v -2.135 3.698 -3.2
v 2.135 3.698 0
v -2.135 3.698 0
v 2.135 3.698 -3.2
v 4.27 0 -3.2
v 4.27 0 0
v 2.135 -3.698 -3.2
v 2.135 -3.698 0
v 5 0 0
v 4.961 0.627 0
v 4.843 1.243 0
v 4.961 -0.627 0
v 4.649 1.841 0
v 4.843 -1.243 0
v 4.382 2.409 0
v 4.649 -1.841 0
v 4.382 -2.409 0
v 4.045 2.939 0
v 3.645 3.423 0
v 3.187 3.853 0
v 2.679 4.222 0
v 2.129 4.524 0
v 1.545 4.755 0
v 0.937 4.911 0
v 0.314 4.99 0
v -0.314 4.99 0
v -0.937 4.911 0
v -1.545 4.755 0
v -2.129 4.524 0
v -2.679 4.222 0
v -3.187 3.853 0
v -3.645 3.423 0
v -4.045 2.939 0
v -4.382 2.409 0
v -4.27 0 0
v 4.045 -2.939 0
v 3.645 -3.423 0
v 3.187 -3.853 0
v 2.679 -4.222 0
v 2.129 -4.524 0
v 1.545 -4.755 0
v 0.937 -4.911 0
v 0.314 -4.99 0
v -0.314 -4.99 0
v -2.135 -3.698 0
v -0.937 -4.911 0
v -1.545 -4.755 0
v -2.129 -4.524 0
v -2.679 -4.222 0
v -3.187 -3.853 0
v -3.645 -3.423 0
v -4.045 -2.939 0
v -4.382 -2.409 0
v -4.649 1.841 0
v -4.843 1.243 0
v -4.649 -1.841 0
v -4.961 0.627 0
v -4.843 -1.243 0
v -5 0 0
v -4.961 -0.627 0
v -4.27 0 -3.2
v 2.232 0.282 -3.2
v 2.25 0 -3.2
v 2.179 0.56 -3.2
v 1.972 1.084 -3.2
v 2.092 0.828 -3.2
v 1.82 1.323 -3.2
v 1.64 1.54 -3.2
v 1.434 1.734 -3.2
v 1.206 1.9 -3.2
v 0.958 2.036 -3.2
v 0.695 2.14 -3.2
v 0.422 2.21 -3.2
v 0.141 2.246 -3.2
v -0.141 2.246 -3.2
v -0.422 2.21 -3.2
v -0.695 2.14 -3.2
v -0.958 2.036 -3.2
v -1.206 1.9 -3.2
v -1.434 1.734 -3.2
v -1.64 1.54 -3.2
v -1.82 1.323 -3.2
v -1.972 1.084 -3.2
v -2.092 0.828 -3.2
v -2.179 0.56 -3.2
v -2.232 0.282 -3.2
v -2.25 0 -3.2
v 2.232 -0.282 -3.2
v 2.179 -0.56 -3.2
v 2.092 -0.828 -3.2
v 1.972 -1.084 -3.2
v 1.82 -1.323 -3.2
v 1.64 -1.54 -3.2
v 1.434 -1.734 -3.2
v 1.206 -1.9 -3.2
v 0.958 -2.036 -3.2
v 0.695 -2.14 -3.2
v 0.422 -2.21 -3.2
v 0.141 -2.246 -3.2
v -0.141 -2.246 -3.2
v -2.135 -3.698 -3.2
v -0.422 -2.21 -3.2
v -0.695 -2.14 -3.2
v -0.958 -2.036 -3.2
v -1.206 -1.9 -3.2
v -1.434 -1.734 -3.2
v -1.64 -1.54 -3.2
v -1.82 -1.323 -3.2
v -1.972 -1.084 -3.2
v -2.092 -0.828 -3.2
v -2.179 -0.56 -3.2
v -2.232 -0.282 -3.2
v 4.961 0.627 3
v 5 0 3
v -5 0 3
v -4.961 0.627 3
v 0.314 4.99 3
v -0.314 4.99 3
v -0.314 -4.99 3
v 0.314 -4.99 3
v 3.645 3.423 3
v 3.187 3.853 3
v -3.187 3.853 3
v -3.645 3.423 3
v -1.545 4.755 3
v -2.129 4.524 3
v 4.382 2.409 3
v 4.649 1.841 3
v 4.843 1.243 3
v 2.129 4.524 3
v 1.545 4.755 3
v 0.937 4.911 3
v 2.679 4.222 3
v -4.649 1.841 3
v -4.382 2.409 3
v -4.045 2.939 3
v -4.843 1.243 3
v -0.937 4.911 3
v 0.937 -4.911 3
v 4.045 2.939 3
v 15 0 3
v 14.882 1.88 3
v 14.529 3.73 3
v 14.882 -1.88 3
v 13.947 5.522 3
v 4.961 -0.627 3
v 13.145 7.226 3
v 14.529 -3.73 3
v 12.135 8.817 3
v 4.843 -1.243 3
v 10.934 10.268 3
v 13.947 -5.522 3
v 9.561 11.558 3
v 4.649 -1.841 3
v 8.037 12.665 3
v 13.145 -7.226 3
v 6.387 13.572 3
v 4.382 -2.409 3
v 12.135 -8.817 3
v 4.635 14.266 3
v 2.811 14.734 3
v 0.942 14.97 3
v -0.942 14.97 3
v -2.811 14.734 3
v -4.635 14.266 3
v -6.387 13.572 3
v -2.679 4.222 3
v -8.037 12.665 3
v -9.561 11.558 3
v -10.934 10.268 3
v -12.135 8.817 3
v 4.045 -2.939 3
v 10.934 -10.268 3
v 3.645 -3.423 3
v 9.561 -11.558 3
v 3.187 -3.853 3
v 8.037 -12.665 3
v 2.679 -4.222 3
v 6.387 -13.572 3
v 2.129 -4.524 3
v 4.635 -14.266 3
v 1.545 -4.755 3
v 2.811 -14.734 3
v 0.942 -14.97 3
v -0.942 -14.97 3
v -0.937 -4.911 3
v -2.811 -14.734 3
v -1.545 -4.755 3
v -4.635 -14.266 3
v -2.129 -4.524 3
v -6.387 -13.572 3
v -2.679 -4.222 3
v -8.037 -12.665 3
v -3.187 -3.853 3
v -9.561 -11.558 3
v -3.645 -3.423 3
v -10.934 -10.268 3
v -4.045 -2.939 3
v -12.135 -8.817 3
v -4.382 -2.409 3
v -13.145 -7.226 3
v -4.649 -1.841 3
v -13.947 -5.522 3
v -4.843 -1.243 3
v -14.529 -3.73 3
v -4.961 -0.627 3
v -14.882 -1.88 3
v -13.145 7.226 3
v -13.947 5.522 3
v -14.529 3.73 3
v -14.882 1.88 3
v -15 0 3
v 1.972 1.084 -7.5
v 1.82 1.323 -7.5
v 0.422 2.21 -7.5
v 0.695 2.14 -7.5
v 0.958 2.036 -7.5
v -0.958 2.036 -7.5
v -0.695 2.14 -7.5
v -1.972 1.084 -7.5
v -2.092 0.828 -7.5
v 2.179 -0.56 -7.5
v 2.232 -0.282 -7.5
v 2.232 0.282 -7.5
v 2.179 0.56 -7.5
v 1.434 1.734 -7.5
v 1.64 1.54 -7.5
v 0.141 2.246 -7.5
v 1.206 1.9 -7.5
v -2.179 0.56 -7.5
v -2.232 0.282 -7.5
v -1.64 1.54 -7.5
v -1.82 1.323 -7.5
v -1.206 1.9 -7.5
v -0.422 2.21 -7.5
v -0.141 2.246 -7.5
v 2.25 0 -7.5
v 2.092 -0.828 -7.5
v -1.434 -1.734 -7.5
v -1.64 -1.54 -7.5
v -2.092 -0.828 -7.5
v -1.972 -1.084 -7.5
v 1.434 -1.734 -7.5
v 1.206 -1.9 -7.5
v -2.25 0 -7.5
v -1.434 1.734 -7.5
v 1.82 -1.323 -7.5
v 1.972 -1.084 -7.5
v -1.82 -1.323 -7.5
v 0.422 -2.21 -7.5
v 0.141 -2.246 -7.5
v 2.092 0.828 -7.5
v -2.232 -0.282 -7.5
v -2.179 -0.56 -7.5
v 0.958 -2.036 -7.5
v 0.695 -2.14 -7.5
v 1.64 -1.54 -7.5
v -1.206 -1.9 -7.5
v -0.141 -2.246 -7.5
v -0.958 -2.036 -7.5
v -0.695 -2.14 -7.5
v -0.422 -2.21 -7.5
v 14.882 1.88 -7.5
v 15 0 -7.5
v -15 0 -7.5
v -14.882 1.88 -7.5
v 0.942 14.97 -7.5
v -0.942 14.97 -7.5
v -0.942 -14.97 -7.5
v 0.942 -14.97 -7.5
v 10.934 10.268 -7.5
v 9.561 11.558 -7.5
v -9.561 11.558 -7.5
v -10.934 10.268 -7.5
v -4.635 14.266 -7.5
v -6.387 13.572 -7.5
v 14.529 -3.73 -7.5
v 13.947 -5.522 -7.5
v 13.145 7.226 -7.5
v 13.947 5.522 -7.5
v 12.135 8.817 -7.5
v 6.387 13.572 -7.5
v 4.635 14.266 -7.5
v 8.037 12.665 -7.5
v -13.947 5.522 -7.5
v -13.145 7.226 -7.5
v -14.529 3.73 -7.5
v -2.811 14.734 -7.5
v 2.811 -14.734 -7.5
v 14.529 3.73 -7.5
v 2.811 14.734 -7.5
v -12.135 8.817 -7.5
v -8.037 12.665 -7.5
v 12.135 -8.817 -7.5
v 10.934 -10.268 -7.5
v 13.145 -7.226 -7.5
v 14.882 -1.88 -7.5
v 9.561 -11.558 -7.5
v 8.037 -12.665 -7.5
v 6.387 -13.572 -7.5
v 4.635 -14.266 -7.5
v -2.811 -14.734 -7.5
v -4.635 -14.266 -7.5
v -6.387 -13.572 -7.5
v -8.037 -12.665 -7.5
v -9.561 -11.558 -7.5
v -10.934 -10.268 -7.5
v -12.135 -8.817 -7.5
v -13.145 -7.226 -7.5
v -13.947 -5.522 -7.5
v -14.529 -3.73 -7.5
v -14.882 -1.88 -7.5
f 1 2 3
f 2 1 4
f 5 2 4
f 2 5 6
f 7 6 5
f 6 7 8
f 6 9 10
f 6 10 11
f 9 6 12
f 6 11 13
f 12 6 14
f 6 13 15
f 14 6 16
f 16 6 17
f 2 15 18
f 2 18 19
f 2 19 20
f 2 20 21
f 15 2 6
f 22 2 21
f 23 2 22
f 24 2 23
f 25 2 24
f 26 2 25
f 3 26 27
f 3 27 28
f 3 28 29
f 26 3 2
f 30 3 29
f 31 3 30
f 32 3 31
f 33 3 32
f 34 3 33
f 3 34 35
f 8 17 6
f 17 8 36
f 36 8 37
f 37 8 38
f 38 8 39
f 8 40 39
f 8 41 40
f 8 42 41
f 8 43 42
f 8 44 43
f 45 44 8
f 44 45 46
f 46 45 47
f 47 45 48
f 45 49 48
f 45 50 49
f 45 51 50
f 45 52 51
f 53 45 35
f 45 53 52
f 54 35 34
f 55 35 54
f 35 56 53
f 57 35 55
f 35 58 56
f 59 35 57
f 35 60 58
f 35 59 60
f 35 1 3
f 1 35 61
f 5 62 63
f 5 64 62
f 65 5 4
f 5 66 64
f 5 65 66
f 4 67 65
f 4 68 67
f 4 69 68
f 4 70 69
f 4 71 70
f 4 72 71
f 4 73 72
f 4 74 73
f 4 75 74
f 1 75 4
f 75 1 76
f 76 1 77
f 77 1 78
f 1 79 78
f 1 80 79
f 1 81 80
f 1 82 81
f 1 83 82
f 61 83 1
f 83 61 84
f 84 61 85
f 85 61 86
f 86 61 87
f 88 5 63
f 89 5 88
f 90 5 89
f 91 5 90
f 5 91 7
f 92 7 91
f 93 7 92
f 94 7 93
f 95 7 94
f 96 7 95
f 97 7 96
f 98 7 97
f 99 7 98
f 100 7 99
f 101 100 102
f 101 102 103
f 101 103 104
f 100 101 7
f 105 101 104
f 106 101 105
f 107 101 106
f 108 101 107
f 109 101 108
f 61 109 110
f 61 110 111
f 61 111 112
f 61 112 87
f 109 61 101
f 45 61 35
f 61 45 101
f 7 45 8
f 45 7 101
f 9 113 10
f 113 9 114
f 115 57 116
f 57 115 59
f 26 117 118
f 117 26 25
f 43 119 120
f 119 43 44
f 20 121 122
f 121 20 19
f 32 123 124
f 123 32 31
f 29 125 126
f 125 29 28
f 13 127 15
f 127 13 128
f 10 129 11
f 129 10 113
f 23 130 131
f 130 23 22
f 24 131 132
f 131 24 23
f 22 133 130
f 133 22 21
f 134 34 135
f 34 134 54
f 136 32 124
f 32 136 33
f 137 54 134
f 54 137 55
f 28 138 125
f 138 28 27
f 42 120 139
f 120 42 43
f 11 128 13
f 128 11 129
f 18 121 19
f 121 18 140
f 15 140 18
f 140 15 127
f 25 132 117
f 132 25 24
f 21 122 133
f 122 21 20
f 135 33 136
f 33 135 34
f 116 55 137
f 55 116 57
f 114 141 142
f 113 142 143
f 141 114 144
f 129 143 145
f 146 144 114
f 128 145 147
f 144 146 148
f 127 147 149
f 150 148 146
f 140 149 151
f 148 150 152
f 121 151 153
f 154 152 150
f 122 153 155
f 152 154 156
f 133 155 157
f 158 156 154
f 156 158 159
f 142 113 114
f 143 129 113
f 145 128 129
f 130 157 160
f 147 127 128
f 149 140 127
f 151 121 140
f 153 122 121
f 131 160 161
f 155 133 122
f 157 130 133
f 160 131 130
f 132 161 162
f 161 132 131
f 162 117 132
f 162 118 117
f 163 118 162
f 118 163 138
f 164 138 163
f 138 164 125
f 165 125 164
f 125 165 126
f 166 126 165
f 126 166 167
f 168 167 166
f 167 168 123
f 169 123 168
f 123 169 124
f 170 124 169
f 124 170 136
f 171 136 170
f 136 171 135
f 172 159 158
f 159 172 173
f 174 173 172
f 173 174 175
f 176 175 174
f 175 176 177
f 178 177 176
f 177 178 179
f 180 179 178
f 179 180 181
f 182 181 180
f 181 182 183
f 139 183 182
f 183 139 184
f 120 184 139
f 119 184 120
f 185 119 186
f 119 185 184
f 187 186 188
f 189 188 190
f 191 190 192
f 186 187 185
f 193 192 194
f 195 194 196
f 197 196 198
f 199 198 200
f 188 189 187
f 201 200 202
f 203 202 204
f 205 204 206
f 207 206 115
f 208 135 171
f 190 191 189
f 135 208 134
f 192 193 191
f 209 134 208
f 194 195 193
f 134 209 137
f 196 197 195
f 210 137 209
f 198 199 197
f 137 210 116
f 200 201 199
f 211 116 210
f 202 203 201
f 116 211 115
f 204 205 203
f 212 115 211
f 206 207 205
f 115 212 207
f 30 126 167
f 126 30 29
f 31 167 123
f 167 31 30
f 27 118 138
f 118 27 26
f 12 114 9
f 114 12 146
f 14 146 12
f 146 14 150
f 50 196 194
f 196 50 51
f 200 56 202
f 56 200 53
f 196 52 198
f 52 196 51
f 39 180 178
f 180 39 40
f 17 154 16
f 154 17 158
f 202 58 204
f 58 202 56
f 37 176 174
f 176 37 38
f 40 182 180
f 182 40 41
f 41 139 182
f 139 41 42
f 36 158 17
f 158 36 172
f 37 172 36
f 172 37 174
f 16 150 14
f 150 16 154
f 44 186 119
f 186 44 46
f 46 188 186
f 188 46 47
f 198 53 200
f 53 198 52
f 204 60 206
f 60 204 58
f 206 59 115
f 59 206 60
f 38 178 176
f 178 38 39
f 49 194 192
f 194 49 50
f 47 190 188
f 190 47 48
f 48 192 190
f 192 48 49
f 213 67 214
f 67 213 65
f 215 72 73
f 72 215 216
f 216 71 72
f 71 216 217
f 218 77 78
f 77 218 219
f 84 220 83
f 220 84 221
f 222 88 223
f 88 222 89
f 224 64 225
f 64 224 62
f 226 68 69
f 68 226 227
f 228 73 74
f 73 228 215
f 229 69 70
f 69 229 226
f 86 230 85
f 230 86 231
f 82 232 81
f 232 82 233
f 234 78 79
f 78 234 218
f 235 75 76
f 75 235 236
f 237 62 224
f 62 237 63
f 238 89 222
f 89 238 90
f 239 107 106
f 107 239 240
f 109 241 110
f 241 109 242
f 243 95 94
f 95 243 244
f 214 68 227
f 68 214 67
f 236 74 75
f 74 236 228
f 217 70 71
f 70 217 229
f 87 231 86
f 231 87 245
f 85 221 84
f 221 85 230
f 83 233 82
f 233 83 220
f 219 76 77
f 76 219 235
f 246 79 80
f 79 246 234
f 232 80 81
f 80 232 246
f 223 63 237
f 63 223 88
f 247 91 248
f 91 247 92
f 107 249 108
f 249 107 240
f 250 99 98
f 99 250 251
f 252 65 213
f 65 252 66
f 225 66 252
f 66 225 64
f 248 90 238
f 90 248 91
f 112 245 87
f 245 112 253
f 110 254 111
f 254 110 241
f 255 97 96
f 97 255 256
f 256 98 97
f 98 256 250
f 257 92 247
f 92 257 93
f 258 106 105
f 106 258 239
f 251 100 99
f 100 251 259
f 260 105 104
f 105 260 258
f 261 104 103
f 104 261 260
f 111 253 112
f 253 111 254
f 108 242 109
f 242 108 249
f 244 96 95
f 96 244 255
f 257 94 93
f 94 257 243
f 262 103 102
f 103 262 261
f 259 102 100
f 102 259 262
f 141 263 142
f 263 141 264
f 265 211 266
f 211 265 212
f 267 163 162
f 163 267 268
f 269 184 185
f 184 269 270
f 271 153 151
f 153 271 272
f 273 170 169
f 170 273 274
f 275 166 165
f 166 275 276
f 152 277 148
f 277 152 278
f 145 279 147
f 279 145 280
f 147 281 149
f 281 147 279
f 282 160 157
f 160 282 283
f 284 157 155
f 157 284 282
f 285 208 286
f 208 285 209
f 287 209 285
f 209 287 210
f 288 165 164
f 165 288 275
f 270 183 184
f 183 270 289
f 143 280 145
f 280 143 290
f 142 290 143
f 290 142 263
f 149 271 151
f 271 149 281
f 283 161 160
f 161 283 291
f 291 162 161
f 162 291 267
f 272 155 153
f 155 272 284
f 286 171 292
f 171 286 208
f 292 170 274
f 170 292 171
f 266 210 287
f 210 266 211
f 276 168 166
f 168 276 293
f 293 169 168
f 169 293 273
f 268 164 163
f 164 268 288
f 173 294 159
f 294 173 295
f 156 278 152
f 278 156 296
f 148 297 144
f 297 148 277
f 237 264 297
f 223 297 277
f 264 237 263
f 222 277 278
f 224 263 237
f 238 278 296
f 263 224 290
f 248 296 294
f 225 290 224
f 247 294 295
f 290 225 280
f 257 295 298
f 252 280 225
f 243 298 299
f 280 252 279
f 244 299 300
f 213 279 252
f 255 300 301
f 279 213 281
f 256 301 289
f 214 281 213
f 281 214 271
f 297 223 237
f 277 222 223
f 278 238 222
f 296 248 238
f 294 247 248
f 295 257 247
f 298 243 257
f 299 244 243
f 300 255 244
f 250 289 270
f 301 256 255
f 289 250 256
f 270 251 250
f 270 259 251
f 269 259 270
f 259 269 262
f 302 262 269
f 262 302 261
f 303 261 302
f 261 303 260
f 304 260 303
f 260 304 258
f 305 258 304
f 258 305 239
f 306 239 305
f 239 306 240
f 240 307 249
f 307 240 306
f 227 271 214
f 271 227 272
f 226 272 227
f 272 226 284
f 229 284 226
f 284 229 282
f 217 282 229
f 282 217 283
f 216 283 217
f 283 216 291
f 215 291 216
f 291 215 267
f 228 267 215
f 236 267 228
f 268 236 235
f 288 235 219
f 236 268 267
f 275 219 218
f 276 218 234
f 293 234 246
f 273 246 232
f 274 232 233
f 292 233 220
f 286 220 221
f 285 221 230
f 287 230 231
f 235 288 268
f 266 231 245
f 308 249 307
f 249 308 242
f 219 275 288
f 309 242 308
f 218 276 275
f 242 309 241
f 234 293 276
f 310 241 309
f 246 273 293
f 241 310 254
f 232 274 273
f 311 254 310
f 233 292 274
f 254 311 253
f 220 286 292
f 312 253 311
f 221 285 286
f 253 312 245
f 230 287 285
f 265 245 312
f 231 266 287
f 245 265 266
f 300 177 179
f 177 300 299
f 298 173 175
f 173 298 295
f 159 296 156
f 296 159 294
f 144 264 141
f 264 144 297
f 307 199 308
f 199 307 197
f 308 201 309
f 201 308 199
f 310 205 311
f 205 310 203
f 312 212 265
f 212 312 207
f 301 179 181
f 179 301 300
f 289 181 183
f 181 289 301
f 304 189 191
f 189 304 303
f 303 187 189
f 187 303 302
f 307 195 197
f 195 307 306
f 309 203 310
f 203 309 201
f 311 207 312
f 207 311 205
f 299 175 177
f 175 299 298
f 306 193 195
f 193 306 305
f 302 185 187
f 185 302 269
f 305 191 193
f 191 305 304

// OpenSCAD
$fn = 50;

difference() {
	union() {
		translate(v = [0, 0, -7.5]) {
			cylinder(h = 10.5, r = 15.0);
		}
	}
	union() {
		translate(v = [0, 0, 0]) {
			rotate(a = [0, 0, 0]) {
				difference() {
					union() {
						translate(v = [0, 0, -3.2]) {
							linear_extrude(height = 3.2) {
								polygon(points = [[4.2698, 0.0], [2.1349000000000005, 3.697755269078796], [-2.134899999999999, 3.6977552690787965], [-4.2698, 5.228996902999369e-16], [-2.134900000000002, -3.6977552690787956], [2.1348999999999974, -3.697755269078798]]);
							}
						}
					}
					union();
				}
			}
		}
		#cylinder(h = 3, r = 5.0);
		#translate(v = [0, 0, -100.0]) {
			cylinder(h = 200, r = 2.25);
		}
	}
}
